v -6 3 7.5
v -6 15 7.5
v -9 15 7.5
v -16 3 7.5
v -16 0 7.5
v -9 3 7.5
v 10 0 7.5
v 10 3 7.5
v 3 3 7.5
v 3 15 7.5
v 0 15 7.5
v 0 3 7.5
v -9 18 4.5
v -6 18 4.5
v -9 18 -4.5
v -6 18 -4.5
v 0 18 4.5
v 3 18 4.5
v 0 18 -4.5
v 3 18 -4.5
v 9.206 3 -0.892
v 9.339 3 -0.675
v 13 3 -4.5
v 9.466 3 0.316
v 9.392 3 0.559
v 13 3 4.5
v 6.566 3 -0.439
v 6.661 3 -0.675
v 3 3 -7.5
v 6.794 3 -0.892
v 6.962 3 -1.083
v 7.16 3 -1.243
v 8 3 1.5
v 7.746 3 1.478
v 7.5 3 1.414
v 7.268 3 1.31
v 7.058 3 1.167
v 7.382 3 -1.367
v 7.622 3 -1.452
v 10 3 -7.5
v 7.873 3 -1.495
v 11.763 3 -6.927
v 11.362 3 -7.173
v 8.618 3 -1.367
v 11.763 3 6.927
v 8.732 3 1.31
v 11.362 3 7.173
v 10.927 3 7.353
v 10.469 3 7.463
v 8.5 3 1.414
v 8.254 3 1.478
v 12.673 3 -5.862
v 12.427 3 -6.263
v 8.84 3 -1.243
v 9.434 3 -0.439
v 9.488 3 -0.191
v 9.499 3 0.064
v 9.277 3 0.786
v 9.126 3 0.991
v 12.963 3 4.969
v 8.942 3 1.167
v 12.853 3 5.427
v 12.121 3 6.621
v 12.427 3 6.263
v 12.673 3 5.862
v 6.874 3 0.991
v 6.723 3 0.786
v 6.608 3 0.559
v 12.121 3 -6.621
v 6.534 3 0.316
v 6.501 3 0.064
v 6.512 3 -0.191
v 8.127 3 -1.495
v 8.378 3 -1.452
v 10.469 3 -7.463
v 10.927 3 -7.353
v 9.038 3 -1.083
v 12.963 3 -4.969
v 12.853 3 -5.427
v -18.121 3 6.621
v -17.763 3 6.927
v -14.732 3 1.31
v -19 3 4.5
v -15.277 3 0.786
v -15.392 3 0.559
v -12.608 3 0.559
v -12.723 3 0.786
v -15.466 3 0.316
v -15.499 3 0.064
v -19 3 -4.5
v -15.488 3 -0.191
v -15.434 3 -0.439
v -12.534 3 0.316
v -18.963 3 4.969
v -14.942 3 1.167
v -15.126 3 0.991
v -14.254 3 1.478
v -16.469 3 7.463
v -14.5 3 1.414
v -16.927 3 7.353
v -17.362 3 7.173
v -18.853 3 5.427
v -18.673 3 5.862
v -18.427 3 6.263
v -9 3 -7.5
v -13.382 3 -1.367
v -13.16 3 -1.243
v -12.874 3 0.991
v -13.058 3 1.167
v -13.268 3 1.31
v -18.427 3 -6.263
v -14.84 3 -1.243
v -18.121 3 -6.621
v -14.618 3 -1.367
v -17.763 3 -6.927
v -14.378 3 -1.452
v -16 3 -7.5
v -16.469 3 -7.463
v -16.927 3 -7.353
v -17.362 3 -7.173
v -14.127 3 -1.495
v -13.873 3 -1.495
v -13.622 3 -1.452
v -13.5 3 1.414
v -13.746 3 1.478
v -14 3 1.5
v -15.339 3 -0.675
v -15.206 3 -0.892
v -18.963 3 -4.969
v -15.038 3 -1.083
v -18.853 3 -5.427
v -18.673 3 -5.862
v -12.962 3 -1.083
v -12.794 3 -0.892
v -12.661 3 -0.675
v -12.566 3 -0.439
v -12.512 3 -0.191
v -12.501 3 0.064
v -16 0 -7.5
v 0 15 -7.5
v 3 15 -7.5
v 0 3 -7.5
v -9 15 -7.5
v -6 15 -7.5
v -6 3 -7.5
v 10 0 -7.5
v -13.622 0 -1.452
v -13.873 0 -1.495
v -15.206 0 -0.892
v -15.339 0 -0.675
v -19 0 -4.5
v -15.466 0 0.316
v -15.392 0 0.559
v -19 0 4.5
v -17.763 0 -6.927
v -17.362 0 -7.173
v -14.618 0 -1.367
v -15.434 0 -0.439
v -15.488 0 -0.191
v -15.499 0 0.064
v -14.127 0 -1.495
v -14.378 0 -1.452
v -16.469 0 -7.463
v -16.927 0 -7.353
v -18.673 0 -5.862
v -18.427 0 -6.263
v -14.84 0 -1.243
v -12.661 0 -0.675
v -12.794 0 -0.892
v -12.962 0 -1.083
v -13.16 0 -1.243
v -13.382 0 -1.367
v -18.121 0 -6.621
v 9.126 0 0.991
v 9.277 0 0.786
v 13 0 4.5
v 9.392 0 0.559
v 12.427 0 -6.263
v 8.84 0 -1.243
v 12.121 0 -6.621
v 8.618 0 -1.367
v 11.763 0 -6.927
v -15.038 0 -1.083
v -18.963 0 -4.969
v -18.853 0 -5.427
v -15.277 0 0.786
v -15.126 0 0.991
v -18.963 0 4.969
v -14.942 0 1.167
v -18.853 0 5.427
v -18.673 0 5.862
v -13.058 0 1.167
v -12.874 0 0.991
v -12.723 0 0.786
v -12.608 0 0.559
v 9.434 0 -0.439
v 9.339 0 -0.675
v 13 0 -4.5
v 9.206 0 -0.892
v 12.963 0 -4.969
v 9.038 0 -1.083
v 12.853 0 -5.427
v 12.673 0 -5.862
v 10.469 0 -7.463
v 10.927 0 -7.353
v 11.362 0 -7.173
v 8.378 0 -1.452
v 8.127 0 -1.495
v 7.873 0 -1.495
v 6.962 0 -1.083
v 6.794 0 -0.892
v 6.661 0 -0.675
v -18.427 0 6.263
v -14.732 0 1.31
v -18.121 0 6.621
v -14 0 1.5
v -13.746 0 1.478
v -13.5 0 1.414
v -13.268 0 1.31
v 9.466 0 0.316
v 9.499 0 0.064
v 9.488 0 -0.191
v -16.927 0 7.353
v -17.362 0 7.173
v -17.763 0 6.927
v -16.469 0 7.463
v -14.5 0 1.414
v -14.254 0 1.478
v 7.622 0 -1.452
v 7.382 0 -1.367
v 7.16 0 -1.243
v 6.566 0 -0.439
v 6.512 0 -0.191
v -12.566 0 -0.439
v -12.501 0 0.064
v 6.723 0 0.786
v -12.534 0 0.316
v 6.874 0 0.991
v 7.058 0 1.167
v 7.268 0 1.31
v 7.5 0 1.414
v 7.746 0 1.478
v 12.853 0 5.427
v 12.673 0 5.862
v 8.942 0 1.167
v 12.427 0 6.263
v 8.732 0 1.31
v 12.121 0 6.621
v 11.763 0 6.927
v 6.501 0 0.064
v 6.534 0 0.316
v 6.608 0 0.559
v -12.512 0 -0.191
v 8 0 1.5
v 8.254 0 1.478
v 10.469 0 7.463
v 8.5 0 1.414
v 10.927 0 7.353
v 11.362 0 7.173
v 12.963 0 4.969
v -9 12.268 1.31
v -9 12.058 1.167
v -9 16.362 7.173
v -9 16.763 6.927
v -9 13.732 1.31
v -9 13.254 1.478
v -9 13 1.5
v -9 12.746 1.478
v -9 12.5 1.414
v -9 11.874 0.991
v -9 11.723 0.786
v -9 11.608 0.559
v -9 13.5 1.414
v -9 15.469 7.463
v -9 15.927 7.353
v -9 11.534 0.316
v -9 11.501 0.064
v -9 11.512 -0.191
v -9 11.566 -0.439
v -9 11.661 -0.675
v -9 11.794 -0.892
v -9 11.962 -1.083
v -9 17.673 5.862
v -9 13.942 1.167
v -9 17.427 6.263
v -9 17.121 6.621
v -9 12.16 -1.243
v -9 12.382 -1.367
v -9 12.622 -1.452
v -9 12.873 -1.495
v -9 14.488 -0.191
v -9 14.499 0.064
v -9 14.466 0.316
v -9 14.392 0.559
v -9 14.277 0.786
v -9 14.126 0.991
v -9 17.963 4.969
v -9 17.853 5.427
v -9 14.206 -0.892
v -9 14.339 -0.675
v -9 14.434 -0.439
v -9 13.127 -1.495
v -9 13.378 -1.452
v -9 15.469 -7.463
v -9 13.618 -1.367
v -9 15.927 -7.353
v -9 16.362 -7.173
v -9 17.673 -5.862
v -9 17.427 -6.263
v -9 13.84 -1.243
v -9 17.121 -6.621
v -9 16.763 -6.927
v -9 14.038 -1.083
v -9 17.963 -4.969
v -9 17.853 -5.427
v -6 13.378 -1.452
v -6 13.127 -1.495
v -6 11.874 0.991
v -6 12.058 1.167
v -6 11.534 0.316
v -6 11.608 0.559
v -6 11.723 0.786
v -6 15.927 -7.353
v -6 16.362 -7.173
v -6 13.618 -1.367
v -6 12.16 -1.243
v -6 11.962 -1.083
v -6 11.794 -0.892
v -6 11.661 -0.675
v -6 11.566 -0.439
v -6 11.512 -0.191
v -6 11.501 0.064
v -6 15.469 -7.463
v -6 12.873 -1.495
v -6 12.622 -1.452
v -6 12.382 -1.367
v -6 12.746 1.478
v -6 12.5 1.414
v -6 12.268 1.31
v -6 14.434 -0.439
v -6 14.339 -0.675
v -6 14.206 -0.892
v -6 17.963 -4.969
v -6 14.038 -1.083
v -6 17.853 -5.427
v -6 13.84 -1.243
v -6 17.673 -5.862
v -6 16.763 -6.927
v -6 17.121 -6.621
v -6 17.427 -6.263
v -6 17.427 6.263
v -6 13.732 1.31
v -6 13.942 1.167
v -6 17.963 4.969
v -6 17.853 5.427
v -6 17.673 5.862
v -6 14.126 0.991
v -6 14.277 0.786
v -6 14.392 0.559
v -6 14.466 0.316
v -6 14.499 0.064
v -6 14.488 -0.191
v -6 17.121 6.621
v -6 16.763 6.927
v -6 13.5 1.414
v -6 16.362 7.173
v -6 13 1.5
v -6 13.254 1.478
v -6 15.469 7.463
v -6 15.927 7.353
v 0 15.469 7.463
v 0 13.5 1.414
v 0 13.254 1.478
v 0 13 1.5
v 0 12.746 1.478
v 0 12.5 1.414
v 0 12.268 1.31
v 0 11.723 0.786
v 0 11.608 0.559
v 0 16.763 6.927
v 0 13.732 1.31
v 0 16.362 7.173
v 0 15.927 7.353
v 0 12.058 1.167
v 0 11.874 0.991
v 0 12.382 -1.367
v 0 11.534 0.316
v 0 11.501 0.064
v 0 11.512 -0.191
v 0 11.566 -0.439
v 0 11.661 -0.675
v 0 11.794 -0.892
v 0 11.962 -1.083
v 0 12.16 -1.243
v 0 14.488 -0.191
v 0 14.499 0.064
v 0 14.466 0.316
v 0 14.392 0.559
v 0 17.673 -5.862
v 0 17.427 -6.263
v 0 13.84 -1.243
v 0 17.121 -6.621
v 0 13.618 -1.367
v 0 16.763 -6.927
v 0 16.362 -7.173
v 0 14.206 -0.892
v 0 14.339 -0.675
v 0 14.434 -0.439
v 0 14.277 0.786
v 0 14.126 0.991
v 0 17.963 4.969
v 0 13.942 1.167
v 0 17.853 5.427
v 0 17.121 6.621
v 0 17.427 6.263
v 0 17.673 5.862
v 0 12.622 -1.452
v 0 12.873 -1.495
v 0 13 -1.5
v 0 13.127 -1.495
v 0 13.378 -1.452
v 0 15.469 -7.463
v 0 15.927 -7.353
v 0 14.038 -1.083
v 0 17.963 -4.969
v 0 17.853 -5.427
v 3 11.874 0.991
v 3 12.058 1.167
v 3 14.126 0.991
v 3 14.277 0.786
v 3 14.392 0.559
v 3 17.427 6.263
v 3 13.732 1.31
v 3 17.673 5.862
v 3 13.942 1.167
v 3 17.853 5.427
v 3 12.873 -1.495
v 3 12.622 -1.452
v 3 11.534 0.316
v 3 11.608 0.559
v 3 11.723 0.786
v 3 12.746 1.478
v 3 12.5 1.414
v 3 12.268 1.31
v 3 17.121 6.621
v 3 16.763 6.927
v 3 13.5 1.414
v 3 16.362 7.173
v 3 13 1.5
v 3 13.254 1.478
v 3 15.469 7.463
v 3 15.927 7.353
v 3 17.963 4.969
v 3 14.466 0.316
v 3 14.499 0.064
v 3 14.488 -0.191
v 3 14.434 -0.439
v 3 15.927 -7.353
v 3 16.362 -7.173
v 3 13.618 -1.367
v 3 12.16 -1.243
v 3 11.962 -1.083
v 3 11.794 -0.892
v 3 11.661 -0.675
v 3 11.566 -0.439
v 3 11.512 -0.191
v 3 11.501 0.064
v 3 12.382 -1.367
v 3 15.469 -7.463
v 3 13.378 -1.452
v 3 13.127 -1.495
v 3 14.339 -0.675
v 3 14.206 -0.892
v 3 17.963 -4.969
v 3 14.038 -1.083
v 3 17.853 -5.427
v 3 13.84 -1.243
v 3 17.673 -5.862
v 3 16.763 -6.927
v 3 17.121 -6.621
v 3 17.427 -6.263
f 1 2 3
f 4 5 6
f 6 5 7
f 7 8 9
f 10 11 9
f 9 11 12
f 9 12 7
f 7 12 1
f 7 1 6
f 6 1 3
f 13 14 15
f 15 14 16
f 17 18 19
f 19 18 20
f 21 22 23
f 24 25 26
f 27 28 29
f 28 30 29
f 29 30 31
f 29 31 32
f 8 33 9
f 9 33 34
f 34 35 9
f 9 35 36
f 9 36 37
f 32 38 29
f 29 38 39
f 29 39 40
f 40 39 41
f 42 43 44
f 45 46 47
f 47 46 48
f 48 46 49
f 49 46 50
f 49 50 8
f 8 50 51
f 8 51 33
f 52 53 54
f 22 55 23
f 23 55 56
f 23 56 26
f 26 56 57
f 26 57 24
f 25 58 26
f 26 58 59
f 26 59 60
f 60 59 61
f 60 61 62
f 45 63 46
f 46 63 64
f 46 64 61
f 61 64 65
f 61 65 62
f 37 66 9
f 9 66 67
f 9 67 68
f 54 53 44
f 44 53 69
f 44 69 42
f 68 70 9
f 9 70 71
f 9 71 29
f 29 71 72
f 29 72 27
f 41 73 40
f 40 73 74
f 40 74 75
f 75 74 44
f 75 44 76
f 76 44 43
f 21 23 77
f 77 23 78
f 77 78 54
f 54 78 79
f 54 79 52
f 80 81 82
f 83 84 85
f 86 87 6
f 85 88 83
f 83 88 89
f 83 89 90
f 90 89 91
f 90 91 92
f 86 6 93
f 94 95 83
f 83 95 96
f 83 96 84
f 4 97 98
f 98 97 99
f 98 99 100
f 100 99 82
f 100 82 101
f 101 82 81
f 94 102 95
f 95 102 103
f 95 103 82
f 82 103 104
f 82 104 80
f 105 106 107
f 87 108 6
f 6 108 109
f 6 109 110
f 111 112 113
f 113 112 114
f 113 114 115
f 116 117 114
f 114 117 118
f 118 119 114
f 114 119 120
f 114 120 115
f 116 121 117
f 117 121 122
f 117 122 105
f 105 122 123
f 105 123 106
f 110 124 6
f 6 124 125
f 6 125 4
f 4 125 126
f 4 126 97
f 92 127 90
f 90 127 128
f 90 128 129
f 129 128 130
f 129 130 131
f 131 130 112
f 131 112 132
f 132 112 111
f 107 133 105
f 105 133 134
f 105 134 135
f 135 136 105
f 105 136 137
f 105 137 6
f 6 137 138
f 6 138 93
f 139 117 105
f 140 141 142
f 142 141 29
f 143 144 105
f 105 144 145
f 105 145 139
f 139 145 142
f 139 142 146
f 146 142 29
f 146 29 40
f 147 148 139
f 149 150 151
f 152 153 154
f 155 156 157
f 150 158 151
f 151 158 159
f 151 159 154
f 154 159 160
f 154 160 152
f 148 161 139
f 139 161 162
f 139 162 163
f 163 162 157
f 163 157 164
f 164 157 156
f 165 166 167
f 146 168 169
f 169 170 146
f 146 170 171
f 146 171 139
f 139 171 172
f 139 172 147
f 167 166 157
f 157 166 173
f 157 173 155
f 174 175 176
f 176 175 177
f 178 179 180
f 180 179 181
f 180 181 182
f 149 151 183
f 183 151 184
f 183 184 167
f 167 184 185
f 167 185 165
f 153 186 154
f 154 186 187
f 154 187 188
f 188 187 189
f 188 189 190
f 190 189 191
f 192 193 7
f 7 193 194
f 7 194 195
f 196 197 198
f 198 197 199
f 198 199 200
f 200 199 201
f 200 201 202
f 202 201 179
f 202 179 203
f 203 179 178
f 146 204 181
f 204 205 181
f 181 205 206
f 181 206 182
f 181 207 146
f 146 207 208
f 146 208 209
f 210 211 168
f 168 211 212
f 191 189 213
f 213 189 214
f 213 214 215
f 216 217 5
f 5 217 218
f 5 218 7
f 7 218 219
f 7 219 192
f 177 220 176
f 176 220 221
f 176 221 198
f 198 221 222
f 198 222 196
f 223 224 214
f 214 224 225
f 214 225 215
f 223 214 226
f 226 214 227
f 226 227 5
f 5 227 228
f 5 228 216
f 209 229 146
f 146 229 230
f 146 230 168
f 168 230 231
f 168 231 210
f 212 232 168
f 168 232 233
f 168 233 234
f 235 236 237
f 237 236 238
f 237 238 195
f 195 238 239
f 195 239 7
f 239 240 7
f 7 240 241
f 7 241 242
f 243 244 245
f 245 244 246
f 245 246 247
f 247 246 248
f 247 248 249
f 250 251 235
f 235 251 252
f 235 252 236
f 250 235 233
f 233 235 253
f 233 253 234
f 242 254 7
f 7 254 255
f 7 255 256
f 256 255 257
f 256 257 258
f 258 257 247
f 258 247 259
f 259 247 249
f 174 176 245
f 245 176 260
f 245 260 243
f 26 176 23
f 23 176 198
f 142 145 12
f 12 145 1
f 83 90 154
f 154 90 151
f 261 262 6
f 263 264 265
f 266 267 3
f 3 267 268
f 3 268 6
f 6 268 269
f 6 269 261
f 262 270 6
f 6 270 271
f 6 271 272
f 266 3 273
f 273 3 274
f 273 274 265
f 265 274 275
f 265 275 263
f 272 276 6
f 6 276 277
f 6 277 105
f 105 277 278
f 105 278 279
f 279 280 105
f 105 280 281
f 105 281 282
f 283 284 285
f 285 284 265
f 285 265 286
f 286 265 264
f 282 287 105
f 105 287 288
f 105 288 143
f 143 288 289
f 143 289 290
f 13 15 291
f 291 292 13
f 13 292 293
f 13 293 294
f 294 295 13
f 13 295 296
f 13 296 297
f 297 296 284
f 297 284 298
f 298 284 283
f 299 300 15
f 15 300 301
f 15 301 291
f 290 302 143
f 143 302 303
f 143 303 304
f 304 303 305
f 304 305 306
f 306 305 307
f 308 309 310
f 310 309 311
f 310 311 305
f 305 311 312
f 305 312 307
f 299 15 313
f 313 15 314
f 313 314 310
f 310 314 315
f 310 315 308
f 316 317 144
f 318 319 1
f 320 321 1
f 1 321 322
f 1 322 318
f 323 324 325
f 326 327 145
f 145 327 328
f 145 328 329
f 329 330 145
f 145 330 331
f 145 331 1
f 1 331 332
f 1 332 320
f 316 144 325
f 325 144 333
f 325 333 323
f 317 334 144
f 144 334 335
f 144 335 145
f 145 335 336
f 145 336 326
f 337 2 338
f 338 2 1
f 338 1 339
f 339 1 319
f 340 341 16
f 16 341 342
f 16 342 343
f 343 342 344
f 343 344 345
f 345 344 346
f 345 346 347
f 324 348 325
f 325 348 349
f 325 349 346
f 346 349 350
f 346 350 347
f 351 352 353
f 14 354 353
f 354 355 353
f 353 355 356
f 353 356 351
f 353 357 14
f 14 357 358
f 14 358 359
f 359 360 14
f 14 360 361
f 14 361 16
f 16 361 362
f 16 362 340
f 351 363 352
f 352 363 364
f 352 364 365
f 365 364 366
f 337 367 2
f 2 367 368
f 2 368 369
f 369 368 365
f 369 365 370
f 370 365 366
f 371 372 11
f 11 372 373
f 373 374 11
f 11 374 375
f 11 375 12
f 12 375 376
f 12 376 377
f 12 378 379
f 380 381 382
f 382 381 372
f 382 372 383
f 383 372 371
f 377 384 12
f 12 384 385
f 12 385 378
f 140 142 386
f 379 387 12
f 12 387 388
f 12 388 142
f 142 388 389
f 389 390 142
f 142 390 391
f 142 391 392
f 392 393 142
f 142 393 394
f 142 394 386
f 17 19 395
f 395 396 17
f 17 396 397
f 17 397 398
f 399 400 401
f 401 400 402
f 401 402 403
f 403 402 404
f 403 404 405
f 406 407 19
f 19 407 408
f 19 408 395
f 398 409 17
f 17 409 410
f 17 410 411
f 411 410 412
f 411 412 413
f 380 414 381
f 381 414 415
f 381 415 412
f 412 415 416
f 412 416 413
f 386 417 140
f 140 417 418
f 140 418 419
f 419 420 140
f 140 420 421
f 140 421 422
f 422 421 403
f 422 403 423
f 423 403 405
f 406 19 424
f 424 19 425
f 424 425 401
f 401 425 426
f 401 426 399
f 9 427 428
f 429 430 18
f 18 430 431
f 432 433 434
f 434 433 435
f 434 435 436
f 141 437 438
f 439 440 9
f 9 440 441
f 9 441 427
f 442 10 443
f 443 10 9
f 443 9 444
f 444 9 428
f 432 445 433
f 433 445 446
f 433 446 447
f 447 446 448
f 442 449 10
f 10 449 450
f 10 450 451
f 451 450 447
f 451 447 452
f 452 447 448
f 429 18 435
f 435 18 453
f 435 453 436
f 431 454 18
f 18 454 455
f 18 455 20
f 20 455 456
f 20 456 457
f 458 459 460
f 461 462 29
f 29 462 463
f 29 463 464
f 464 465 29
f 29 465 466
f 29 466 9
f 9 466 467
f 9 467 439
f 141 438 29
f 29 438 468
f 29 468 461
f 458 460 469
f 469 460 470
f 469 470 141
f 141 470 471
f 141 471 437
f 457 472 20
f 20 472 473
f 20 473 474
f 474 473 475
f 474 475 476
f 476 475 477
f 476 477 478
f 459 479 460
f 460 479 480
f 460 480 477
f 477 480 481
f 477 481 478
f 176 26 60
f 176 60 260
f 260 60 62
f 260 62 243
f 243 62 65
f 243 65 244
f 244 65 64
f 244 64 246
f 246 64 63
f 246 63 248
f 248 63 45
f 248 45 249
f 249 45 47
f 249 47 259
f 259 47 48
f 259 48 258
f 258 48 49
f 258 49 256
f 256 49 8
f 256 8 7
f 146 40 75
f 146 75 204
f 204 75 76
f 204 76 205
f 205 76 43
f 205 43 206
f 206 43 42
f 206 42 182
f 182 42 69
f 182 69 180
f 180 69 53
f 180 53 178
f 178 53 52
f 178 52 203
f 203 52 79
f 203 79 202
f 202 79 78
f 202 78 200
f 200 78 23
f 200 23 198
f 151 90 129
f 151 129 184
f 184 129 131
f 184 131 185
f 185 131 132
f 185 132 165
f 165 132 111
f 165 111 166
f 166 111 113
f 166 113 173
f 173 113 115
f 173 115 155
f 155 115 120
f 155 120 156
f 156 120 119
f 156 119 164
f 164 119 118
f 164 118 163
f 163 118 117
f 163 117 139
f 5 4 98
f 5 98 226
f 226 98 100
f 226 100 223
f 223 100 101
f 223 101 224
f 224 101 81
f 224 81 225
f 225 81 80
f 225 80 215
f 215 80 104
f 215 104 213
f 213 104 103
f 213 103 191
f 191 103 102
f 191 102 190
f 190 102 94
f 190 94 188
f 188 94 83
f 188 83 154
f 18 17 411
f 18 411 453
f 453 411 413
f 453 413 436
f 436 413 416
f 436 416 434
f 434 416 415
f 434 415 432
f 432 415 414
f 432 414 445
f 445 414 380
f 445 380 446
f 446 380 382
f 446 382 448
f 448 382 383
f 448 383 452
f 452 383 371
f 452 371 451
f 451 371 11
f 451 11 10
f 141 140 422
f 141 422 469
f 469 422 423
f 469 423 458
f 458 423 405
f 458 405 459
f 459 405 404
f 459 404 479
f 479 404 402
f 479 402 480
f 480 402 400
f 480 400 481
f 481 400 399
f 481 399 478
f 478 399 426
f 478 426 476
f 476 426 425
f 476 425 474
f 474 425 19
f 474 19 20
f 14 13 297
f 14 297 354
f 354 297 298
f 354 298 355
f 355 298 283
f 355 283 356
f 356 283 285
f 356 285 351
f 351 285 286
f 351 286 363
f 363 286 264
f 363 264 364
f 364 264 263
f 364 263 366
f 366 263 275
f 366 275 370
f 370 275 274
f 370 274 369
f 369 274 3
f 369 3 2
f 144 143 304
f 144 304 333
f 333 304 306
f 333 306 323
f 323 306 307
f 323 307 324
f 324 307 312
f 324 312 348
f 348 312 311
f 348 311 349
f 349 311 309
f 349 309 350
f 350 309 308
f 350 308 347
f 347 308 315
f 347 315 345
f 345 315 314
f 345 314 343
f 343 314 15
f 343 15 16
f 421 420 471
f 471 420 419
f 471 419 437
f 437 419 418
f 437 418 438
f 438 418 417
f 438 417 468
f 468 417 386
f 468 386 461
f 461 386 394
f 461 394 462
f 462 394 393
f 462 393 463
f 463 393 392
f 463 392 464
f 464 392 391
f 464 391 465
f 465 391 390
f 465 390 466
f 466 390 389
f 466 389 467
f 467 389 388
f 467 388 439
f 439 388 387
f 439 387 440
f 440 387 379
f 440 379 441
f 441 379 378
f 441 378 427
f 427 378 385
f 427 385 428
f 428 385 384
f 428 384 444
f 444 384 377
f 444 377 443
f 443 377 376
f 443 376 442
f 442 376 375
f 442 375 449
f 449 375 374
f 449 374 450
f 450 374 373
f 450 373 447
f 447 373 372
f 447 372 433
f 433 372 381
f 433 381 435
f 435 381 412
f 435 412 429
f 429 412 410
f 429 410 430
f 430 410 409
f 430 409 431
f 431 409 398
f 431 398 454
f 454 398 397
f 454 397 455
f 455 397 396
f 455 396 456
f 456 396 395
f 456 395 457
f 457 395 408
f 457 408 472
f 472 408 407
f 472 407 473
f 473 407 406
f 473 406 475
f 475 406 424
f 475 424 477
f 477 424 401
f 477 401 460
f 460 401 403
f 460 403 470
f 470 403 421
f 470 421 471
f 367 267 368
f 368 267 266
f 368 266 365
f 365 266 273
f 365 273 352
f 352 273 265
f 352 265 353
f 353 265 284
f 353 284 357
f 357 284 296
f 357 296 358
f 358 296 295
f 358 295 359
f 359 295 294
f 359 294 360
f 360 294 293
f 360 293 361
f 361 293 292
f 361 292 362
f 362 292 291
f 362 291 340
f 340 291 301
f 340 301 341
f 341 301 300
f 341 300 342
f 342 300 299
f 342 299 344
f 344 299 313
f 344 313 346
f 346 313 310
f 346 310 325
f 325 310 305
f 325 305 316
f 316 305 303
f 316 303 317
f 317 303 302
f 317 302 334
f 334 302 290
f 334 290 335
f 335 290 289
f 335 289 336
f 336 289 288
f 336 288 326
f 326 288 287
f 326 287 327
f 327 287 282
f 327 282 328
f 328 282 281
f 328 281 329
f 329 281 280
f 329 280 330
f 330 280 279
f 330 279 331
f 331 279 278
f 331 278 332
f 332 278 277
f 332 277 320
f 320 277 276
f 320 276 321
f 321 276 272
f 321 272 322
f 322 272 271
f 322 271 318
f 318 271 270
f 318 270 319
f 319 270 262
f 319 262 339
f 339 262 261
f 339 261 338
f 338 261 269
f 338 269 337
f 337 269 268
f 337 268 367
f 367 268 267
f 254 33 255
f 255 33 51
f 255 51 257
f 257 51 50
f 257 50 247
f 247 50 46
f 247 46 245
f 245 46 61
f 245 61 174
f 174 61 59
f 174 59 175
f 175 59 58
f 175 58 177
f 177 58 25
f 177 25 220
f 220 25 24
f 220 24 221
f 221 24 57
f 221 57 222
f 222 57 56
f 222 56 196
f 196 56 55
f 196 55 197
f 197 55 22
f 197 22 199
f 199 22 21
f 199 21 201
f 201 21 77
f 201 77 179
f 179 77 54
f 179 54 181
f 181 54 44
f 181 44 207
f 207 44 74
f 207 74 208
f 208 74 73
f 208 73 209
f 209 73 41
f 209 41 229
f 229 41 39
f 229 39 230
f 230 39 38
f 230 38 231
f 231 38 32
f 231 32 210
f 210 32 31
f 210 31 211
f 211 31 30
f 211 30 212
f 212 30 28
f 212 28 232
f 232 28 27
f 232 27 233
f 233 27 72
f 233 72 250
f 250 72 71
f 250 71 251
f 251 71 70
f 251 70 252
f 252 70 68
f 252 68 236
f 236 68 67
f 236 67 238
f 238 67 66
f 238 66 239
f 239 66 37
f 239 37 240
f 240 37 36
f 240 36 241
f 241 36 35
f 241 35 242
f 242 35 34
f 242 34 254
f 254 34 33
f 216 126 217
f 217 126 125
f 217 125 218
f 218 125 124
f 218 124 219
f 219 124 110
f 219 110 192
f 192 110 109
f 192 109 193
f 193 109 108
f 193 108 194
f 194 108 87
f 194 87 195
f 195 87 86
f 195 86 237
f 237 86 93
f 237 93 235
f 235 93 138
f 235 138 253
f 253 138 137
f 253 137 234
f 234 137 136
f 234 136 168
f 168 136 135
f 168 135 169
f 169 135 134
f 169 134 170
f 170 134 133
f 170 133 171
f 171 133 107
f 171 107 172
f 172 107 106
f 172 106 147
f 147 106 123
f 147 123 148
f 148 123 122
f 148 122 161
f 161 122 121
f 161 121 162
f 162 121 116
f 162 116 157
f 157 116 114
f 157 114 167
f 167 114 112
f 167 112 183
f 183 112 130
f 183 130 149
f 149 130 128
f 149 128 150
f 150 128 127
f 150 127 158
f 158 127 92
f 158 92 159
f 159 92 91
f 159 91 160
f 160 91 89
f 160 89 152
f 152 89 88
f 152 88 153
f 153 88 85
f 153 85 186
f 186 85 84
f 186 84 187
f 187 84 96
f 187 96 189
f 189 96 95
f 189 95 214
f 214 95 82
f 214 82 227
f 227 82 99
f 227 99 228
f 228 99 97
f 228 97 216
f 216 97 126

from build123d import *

# Parameters (mm, degrees)
CROQUIS1_W              = 38
CROQUIS1_H              = 15
SALIENTE_EXTRUIR1_DEPTH = 3
CROQUIS2_W              = 3
CROQUIS2_H              = 15
SALIENTE_EXTRUIR2_DEPTH = 15
CROQUIS3_W              = 6
CROQUIS3_H              = 15
CORTAR_EXTRUIR1_DEPTH   = 15
CORTAR_EXTRUIR2_DEPTH   = 15
CORTAR_EXTRUIR3_DEPTH   = 15
CROQUIS6_R              = 1.5
CORTAR_EXTRUIR4_DEPTH   = 15
CROQUIS7_R              = 1.5
CORTAR_EXTRUIR5_DEPTH   = 15


with BuildPart() as part:
    # Croquis1 → Saliente-Extruir1 (new body)
    with BuildSketch(Plane(origin=(0, 0, 0), x_dir=(1, 0, 0), z_dir=(0, 1, 0))):
        Rectangle(CROQUIS1_W, CROQUIS1_H)
    extrude(amount=SALIENTE_EXTRUIR1_DEPTH)

    # Croquis2 → Saliente-Extruir2 (add)
    with BuildSketch(Plane(origin=(0, 3, 0), x_dir=(1, 0, 0), z_dir=(0, 1, 0))):
        with Locations((-7.5, 0)):
            Rectangle(CROQUIS2_W, CROQUIS2_H)
        with Locations((1.5, 0)):
            Rectangle(CROQUIS2_W, CROQUIS2_H)
    extrude(amount=SALIENTE_EXTRUIR2_DEPTH)

    # Croquis3 → Cortar-Extruir1 (cut)
    with BuildSketch(Plane(origin=(0, 3, 0), x_dir=(1, 0, 0), z_dir=(0, 1, 0))):
        with Locations((16, 0)):
            Rectangle(CROQUIS3_W, CROQUIS3_H)
    extrude(amount=-CORTAR_EXTRUIR1_DEPTH, mode=Mode.SUBTRACT)

    # Croquis4 → Cortar-Extruir2 (cut)
    with BuildSketch(Plane(origin=(0, 3, 0), x_dir=(1, 0, 0), z_dir=(0, 1, 0))):
        with BuildLine():
            Line((-19, 7.5), (-19, 4.5))
            ThreePointArc((-19, 4.5), (-18.121320344, 6.621320344), (-16, 7.5))
            Line((-16, 7.5), (-19, 7.5))
        make_face()
        with BuildLine():
            ThreePointArc((-16, -7.5), (-18.121320344, -6.621320344), (-19, -4.5))
            Line((-19, -4.5), (-19, -7.5))
            Line((-19, -7.5), (-16, -7.5))
        make_face()
        with BuildLine():
            Line((13, -4.5), (13, -7.5))
            Line((13, -7.5), (10, -7.5))
            ThreePointArc((10, -7.5), (12.121320344, -6.621320344), (13, -4.5))
        make_face()
        with BuildLine():
            Line((10, 7.5), (13, 7.5))
            Line((13, 7.5), (13, 4.5))
            ThreePointArc((13, 4.5), (12.121320344, 6.621320344), (10, 7.5))
        make_face()
    extrude(amount=-CORTAR_EXTRUIR2_DEPTH, mode=Mode.SUBTRACT)

    # Croquis5 → Cortar-Extruir3 (cut)
    with BuildSketch(Plane.ZY.offset(9)):
        with BuildLine():
            Line((-4.5, 18), (-7.5, 18))
            Line((-7.5, 18), (-7.5, 15))
            ThreePointArc((-7.5, 15), (-6.621320344, 17.121320344), (-4.5, 18))
        make_face()
        with BuildLine():
            Line((4.5, 18), (7.5, 18))
            Line((7.5, 18), (7.5, 15))
            ThreePointArc((7.5, 15), (6.621320344, 17.121320344), (4.5, 18))
        make_face()
    extrude(amount=-CORTAR_EXTRUIR3_DEPTH, mode=Mode.SUBTRACT)

    # Croquis6 → Cortar-Extruir4 (cut)
    with BuildSketch(Plane.ZY.offset(9)):
        with Locations((0, 13)):
            Circle(CROQUIS6_R)
    extrude(amount=-CORTAR_EXTRUIR4_DEPTH, mode=Mode.SUBTRACT)

    # Croquis7 → Cortar-Extruir5 (cut)
    with BuildSketch(Plane(origin=(0, 3, 0), x_dir=(1, 0, 0), z_dir=(0, 1, 0))):
        with Locations(Location((-14, 0, 0), (0, 0, 270))):
            Circle(CROQUIS7_R)
        with Locations(Location((8, 0, 0), (0, 0, 270))):
            Circle(CROQUIS7_R)
    extrude(amount=-CORTAR_EXTRUIR5_DEPTH, mode=Mode.SUBTRACT)


solid = part.part
